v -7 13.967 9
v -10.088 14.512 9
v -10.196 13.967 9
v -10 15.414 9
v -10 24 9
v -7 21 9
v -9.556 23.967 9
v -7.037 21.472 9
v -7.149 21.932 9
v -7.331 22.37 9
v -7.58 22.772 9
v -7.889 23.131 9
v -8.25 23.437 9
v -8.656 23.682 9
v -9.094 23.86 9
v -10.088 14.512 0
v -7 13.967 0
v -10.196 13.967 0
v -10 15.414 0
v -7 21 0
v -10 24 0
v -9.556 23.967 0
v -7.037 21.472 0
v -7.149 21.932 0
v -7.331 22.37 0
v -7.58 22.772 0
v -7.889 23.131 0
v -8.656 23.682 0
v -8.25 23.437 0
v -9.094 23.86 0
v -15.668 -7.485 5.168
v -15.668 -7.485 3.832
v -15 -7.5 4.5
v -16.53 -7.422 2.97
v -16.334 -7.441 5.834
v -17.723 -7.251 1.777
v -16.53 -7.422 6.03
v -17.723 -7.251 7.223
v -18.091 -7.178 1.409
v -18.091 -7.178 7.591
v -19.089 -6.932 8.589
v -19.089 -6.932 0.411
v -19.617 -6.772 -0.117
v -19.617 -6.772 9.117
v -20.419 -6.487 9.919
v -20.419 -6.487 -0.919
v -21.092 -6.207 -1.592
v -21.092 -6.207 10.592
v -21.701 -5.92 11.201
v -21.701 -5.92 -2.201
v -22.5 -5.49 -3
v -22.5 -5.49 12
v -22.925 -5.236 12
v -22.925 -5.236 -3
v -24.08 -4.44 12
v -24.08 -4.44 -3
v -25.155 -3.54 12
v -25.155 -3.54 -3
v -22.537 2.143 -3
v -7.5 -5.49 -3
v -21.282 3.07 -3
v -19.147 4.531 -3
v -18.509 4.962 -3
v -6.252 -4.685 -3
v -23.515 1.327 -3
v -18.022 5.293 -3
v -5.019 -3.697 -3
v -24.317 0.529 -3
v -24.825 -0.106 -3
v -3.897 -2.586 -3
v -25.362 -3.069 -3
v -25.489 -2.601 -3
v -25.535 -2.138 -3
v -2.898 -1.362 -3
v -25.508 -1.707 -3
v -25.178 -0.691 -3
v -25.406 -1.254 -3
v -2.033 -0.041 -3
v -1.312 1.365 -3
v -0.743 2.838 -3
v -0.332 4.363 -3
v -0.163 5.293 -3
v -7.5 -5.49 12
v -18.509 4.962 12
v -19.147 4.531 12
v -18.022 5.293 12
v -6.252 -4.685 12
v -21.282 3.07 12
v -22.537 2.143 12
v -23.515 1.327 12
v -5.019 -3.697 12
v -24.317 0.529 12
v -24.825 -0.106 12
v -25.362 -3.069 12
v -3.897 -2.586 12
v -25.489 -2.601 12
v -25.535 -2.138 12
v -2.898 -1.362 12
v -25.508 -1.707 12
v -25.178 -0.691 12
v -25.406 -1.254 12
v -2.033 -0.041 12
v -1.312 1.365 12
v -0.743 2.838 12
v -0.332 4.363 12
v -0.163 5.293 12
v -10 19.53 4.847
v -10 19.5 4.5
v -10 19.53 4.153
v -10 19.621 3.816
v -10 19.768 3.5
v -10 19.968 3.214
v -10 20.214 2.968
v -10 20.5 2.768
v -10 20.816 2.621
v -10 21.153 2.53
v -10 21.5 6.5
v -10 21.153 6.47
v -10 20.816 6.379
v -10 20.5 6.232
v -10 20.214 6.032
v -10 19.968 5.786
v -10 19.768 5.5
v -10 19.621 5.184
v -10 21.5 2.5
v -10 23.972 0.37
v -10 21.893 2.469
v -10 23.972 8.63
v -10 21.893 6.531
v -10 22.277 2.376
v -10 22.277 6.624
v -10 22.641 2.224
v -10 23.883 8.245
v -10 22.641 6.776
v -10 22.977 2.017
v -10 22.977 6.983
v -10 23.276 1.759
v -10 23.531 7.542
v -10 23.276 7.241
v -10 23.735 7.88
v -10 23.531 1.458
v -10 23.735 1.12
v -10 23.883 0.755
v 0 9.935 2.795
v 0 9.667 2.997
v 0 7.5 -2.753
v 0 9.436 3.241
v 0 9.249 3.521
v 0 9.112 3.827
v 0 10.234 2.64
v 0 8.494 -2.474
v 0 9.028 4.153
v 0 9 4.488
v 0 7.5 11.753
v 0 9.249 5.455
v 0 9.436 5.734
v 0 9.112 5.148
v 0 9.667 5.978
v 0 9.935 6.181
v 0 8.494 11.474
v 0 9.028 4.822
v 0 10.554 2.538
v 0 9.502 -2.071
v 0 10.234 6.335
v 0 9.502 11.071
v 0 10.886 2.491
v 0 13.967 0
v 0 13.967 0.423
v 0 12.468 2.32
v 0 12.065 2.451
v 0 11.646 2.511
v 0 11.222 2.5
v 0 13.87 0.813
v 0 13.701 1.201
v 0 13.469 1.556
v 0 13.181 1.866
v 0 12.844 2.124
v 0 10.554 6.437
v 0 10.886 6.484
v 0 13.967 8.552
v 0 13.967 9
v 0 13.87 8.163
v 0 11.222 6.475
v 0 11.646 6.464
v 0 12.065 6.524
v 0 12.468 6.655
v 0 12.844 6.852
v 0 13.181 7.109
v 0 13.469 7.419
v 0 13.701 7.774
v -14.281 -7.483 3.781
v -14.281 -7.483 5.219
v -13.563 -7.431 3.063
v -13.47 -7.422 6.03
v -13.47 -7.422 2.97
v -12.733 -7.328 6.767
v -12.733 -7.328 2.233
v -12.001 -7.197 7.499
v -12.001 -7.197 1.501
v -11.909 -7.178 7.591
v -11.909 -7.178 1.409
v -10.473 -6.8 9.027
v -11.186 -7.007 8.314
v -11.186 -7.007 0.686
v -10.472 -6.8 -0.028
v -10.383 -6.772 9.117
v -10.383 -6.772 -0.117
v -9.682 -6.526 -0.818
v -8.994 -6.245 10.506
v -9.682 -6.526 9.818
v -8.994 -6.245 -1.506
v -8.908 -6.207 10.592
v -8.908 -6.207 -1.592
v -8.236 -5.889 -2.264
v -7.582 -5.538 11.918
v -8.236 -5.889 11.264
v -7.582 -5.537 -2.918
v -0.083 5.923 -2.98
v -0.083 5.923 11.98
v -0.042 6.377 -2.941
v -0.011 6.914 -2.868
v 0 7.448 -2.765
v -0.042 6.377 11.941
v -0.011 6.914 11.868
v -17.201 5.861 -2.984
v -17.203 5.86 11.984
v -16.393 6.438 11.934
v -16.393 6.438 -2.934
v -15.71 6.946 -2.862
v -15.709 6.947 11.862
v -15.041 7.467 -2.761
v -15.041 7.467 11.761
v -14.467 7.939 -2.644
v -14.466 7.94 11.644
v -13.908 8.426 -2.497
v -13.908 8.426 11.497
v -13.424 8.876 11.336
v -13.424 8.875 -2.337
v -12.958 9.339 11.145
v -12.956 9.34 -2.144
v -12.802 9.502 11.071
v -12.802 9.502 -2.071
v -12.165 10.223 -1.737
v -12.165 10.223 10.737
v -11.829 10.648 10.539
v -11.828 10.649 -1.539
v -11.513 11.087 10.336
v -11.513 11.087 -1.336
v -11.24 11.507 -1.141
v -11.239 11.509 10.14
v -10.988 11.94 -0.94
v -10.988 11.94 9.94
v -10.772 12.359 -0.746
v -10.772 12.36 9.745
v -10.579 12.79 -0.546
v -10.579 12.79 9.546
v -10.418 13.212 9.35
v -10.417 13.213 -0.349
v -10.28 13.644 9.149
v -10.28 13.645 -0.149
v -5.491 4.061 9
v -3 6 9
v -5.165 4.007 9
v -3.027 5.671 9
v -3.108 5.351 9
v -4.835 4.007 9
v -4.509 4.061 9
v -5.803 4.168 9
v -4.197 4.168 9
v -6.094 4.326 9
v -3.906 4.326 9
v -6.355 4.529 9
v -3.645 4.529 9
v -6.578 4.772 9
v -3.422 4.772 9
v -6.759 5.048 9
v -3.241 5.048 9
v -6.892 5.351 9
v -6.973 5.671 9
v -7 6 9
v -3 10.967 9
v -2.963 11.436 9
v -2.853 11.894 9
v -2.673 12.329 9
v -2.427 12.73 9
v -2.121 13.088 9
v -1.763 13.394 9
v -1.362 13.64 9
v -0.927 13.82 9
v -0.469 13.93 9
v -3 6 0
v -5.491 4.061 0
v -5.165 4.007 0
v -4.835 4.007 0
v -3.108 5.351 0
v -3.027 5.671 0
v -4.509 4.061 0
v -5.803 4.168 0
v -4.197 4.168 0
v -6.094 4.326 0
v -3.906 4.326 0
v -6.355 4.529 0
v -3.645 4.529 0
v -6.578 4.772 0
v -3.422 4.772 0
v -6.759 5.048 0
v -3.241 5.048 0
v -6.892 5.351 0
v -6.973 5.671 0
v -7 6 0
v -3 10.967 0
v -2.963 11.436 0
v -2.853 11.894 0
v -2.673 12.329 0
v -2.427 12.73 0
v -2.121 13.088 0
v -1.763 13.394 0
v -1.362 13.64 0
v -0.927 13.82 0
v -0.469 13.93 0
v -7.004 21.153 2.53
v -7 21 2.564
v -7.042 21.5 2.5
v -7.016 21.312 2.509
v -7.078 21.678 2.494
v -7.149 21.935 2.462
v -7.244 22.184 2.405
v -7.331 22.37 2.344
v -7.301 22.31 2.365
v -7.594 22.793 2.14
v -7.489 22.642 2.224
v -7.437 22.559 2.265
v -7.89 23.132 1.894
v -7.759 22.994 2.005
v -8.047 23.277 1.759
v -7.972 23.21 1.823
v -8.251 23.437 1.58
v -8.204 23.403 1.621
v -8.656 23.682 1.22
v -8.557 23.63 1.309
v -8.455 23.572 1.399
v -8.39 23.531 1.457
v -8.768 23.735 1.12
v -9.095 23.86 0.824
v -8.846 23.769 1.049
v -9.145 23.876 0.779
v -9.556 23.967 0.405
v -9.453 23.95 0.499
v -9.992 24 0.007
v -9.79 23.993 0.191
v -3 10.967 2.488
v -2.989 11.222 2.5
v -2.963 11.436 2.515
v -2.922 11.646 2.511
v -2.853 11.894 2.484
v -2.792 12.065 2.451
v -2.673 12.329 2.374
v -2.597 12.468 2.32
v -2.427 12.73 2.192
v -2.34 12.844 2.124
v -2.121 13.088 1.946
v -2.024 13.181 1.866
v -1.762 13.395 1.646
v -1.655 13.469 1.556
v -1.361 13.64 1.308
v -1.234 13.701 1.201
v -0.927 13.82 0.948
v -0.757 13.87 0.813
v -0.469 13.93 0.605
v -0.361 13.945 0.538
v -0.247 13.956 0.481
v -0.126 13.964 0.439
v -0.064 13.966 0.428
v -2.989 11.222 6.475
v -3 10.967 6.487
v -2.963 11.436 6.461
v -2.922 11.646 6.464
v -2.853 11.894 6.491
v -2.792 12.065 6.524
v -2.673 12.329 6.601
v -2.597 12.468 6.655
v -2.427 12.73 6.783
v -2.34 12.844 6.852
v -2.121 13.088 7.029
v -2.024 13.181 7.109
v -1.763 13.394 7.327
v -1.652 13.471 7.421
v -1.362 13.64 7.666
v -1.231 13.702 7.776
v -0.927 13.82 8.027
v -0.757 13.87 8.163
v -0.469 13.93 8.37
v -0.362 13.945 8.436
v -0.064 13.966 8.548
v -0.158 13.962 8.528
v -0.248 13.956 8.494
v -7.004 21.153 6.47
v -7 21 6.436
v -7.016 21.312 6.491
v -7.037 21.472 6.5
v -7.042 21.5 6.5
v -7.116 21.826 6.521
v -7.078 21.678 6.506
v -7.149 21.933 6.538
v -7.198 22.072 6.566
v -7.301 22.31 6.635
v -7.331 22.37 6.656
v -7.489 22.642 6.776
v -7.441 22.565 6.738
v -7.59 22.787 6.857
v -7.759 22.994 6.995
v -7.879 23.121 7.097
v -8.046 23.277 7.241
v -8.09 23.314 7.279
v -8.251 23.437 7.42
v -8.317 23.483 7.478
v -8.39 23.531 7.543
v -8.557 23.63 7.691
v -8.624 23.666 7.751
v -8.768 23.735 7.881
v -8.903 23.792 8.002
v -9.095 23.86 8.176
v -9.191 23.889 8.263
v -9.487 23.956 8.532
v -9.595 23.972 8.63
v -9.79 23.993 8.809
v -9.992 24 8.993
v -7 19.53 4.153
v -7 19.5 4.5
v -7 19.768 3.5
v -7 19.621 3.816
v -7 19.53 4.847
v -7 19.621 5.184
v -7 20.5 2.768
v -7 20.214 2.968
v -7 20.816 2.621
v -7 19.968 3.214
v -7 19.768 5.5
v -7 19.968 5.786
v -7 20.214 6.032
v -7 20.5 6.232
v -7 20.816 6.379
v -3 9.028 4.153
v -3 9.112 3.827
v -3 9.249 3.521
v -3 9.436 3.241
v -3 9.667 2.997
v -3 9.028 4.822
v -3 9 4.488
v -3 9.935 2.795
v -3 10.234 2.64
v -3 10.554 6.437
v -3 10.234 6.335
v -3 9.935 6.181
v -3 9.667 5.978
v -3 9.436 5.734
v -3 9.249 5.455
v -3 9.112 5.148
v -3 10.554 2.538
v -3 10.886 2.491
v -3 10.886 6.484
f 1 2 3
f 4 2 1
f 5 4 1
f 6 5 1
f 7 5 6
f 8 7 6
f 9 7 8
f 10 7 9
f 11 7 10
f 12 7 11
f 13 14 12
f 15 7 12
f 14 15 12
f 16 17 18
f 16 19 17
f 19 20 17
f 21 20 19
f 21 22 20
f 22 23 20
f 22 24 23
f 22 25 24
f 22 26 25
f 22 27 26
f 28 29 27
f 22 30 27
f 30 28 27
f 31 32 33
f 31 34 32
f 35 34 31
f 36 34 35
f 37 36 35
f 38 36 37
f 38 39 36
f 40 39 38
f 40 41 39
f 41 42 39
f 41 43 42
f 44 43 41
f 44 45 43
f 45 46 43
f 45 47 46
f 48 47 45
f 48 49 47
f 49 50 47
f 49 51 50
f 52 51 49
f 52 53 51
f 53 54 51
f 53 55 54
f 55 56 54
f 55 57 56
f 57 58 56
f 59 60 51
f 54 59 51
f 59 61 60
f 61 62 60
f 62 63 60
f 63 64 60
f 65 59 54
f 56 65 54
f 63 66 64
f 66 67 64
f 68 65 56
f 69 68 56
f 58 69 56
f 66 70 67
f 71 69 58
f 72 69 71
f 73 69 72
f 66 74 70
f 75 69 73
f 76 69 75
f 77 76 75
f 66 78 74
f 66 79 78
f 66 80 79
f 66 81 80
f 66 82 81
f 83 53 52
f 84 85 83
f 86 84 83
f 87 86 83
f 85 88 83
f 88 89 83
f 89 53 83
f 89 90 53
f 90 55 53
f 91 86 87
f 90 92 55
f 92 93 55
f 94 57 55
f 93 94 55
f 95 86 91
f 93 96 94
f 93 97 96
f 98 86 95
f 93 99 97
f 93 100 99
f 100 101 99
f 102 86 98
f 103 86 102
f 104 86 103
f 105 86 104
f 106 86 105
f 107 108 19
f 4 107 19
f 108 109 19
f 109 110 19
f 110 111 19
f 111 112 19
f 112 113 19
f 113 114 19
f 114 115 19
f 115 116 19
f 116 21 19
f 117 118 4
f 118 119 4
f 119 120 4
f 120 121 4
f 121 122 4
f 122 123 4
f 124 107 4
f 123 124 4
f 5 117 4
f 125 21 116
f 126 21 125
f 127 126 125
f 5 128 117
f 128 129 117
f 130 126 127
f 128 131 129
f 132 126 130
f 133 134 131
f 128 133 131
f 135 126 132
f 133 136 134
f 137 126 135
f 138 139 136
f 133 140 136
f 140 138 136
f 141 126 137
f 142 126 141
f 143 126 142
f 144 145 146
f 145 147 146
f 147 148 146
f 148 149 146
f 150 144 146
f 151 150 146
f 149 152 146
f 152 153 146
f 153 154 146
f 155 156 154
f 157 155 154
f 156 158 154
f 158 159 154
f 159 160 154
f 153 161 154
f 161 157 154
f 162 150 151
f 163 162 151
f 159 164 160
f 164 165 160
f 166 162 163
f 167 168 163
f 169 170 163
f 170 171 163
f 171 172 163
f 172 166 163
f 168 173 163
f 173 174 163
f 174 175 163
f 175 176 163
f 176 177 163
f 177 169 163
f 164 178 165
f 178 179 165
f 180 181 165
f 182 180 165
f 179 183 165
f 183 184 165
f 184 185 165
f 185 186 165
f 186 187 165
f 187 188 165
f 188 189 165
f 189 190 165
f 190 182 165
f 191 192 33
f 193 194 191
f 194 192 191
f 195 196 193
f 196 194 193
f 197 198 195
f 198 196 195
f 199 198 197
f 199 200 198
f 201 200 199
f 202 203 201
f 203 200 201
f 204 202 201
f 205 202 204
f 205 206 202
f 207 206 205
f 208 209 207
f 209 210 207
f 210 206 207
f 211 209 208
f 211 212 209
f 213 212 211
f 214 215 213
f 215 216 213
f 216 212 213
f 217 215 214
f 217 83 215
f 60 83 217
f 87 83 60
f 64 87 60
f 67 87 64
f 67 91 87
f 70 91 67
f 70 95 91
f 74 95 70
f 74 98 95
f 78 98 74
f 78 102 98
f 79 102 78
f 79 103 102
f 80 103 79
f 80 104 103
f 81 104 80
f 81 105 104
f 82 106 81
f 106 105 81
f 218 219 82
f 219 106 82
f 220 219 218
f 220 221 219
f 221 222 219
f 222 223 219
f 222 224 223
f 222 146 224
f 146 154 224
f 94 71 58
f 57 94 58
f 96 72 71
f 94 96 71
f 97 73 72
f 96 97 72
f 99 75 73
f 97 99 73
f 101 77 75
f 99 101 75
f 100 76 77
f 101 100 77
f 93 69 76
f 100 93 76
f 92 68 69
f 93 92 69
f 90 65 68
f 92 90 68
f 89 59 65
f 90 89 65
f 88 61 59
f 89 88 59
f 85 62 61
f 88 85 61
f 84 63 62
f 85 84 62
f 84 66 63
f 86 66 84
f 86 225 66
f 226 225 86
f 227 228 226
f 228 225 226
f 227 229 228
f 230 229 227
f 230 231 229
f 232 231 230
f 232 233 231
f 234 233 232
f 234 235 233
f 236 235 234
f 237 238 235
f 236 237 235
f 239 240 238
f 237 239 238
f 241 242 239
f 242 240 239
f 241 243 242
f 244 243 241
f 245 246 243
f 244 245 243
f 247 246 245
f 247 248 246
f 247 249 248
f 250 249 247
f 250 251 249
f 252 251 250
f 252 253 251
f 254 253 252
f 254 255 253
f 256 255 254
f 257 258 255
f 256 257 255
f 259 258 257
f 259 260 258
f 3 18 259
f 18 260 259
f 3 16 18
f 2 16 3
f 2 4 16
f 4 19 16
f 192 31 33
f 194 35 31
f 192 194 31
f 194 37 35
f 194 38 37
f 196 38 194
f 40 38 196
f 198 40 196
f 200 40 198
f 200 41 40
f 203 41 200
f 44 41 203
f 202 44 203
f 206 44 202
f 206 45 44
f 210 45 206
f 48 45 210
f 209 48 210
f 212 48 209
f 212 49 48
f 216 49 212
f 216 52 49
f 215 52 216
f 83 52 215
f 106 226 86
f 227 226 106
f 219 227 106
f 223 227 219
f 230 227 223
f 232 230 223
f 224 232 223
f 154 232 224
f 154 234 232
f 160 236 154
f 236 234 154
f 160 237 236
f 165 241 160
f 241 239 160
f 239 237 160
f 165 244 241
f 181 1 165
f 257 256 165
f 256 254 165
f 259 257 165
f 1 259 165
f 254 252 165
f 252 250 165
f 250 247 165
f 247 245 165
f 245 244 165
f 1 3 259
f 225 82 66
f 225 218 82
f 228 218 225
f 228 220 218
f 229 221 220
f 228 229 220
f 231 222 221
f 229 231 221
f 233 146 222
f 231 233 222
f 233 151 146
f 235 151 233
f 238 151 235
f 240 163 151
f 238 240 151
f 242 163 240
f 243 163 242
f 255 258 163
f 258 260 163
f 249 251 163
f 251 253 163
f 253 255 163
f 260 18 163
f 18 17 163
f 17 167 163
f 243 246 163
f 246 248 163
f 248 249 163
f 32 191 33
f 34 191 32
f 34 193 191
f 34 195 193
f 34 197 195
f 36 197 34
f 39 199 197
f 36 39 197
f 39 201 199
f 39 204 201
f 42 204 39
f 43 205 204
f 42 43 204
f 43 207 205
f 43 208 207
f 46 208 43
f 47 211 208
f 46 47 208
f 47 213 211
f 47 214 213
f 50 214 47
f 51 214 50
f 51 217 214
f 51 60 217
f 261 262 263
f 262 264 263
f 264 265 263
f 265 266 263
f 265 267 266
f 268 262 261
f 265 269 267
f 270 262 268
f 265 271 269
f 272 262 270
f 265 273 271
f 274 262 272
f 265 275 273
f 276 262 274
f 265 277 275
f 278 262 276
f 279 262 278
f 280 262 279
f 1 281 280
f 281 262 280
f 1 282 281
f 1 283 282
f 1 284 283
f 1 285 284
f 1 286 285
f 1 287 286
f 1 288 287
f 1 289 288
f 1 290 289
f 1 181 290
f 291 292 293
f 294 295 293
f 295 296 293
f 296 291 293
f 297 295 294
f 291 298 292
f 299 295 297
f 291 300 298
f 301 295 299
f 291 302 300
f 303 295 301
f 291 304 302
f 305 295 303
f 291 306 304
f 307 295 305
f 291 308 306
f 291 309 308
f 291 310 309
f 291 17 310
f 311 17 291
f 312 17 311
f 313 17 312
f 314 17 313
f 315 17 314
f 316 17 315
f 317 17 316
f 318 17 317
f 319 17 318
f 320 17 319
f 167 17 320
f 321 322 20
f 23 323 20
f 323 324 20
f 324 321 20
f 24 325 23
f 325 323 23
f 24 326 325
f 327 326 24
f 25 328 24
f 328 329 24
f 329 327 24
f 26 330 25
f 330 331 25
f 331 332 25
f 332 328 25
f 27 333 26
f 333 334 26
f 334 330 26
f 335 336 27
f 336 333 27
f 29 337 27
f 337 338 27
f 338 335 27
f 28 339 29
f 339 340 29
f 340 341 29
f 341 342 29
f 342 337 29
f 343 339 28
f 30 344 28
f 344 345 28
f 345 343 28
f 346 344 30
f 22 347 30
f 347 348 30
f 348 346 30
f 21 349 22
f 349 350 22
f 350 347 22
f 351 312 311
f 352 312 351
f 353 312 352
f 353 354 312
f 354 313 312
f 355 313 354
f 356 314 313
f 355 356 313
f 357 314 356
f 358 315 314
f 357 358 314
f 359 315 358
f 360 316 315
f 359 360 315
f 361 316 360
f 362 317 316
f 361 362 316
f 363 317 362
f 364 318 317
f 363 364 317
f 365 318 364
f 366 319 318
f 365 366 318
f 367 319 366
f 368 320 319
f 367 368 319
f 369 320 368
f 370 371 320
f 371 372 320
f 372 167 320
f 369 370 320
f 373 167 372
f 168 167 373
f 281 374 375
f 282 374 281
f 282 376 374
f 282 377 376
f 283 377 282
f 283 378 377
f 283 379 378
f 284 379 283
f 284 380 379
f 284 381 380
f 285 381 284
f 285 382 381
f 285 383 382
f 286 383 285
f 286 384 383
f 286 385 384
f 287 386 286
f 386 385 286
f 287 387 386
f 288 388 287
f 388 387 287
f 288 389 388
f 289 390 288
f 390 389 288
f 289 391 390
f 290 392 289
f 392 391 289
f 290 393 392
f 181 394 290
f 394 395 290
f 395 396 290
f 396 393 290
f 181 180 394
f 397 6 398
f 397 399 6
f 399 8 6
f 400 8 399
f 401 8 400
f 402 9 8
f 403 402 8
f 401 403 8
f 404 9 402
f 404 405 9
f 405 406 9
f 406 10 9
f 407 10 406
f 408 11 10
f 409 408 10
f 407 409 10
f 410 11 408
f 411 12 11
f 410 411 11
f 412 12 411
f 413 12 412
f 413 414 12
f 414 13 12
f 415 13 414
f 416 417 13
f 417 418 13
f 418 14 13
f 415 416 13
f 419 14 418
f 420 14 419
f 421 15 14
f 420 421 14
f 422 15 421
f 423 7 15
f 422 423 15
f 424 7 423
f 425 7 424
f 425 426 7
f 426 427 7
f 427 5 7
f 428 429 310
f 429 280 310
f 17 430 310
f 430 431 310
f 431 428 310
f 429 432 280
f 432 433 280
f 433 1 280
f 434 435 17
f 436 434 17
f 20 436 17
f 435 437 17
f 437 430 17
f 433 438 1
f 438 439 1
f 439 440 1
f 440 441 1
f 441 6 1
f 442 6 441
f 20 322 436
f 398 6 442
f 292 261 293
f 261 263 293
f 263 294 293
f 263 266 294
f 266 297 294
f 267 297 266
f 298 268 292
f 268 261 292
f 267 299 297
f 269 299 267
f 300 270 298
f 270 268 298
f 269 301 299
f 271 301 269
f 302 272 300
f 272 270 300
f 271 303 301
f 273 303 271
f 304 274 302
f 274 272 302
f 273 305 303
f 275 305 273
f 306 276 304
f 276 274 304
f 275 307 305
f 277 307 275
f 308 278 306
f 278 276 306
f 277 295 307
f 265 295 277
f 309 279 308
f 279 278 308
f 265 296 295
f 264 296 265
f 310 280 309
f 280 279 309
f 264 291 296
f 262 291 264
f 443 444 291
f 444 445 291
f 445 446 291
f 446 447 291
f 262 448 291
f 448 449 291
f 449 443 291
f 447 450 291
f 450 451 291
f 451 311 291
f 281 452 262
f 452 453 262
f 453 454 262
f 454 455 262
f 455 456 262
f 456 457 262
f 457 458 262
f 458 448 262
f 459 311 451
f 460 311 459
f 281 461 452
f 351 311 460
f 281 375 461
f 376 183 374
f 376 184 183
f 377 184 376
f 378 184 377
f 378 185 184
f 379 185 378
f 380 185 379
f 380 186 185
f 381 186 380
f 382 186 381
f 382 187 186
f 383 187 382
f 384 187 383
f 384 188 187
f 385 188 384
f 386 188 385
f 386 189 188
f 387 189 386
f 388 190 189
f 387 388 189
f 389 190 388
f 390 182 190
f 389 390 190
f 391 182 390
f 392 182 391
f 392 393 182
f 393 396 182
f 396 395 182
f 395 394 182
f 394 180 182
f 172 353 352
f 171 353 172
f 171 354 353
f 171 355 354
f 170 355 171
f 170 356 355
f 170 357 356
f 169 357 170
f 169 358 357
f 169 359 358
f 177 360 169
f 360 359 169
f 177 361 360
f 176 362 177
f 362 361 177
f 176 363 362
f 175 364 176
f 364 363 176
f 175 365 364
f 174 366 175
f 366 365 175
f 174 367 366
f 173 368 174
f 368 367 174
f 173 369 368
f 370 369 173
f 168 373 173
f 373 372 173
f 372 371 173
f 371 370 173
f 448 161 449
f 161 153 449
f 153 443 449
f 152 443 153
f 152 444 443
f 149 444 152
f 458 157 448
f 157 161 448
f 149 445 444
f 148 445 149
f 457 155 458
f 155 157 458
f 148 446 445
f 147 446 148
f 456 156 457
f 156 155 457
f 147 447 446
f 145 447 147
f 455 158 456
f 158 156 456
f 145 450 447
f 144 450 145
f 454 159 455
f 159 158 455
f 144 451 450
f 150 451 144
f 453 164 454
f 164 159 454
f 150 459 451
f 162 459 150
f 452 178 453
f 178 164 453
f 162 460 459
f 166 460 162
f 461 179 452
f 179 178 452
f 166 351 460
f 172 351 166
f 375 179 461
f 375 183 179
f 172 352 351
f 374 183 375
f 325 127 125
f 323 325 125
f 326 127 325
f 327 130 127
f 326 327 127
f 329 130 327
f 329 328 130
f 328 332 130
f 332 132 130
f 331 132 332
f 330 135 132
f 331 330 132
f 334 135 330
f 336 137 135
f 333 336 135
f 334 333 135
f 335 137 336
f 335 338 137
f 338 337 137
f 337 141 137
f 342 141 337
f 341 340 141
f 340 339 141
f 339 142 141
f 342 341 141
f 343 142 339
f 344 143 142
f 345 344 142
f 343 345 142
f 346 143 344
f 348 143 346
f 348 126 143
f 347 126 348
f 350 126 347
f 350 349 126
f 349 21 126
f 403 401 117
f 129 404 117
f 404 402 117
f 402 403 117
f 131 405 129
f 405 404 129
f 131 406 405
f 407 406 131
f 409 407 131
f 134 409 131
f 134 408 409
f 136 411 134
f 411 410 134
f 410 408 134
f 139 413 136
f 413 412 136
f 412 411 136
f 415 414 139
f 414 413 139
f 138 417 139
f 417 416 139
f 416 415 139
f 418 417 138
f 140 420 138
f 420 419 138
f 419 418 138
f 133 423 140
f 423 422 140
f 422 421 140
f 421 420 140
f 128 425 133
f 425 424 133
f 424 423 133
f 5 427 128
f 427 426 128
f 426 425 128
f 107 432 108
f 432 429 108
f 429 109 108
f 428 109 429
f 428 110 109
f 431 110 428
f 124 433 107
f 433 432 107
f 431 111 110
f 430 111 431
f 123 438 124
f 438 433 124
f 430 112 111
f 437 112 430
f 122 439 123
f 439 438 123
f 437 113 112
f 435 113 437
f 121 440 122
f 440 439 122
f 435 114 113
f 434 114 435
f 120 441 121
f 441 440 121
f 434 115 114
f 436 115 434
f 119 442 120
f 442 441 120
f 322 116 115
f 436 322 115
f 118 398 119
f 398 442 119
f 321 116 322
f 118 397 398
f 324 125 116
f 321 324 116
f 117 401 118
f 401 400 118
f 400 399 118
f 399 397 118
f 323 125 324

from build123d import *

# Parameters (mm, degrees)
SKETCH1_R                = 2
SKETCH1_R_2              = 2.6
BOSS_EXTRUDE1_DEPTH      = 9
FILLET1_R                = 4
SKETCH3_W                = 1
SKETCH3_H                = 25
CUT_EXTRUDE2_DEPTH       = 131.694299799
CUT_EXTRUDE3_DEPTH       = 132.837020597
BOSS_EXTRUDE2_DEPTH      = 3
BOSS_EXTRUDE4_DEPTH      = 5
CUT_EXTRUDE4_DEPTH       = 2
FILLET2_R                = 20
FILLET3_R                = 4
BOSS_EXTRUDE5_DEPTH      = 12
BOSS_EXTRUDE5_DEPTH_BACK = 3
CUT_EXTRUDE5_DEPTH       = 134.026557597
CUT_EXTRUDE5_DEPTH_BACK  = 134.026557597


with BuildPart() as part:
    # Sketch1 → Boss-Extrude1 (new body)
    with BuildSketch(Plane.XY):
        Polygon((0, 0), (-10, 0), (-10, 30), (-20, 90), (-20, 130), (-10, 130), (-10, 90), (0, 30), align=None)
        with Locations((-15, 100)):
            Circle(SKETCH1_R, mode=Mode.SUBTRACT)
        with Locations((-15, 125)):
            Circle(SKETCH1_R_2, mode=Mode.SUBTRACT)
    extrude(amount=BOSS_EXTRUDE1_DEPTH)

    # Fillet1
    fillet1_edges = [part.edges().sort_by_distance(p)[0] for p in [
        (0, 0, 4.5),
        (-10, 0, 4.5),
    ]]
    fillet(fillet1_edges, radius=FILLET1_R)

    # Sketch3 → Cut-Extrude2 (cut, through all)
    with BuildSketch(Plane.ZY.offset(10)):
        with Locations((0.5, 117.5)):
            Rectangle(SKETCH3_W, SKETCH3_H)
    extrude(amount=CUT_EXTRUDE2_DEPTH, mode=Mode.SUBTRACT)

    # Sketch5 → Cut-Extrude3 (cut, through all)
    with BuildSketch(Plane.XY.offset(9)):
        with BuildLine():
            Line((-10, 4), (-10, 24))
            ThreePointArc((-10, 24), (-7.878679656, 23.121320344), (-7, 21))
            Line((-7, 21), (-7, 6))
            ThreePointArc((-7, 6), (-5, 4), (-3, 6))
            Line((-3, 6), (-3, 10.96659189))
            ThreePointArc((-3, 10.96659189), (-2.121320344, 13.087912234), (0, 13.96659189))
            Line((0, 13.96659189), (0, 4))
            ThreePointArc((0, 4), (-1.171572875, 1.171572875), (-4, 0))
            Line((-4, 0), (-6, 0))
            ThreePointArc((-6, 0), (-8.828427125, 1.171572875), (-10, 4))
        make_face()
    extrude(amount=-CUT_EXTRUDE3_DEPTH, mode=Mode.SUBTRACT)

    # Boss-Extrude2: read off the stored shape, not the designer's step
    # Boss-Extrude2 outline → Boss-Extrude2 (add)
    with BuildSketch(Plane.ZY):
        with BuildLine():
            Line((9, 13.96659189), (9, 30))
            Line((9, 30), (0, 30))
            Line((0, 30), (0, 13.96659189))
            Line((0, 13.96659189), (0.423395215, 13.96659189))
            ThreePointArc((0.423395215, 13.96659189), (2.009052541, 13.008624555), (2.499994655, 11.222291324))
            ThreePointArc((2.499994655, 11.222291324), (4.487608253, 9.000047793), (6.47522185, 11.222291324))
            ThreePointArc((6.47522185, 11.222291324), (6.966163965, 13.008624555), (8.551821291, 13.96659189))
            Line((8.551821291, 13.96659189), (9, 13.96659189))
        make_face()
    extrude(amount=BOSS_EXTRUDE2_DEPTH)

    # Sketch8 → Boss-Extrude4 (add)
    with BuildSketch(Plane.ZY.offset(10)):
        with BuildLine():
            Line((2.5, 21.5), (6.5, 21.5))
            ThreePointArc((6.5, 21.5), (4.5, 19.5), (2.5, 21.5))
        make_face()
        with BuildLine():
            ThreePointArc((0, 24), (1.767766953, 23.267766953), (2.5, 21.5))
            Line((2.5, 21.5), (6.5, 21.5))
            ThreePointArc((6.5, 21.5), (7.232233047, 23.267766953), (9, 24))
            Line((9, 24), (0, 24))
        make_face()
    extrude(amount=-BOSS_EXTRUDE4_DEPTH)

    # Sketch9 → Cut-Extrude4 (cut)
    with BuildSketch(Plane(origin=(4.931969619, 0.408182285, 0), x_dir=(0, 0, -1), z_dir=(0.9863939238321437, 0.16439898730535749, 0))):
        with BuildLine():
            Line((-7, 37), (-7, 85.827625303))
            ThreePointArc((-7, 85.827625303), (-4.5, 88.327625303), (-2, 85.827625303))
            Line((-2, 85.827625303), (-2, 37))
            ThreePointArc((-2, 37), (-4.5, 34.5), (-7, 37))
        make_face()
    cut_extrude4 = extrude(amount=-CUT_EXTRUDE4_DEPTH, mode=Mode.SUBTRACT)

    # Mirror1: Cut-Extrude4 across plane
    add(cut_extrude4.mirror(Plane(origin=(0, 0, 0), x_dir=(0, 0, 1), z_dir=(0.9863939238321437, 0.16439898730535743, 0))), mode=Mode.SUBTRACT)

    # Fillet2
    fillet2_edges = [part.edges().sort_by_distance(p)[0] for p in [
        (-10, 30, 4.5),
        (-20, 90, 4.5),
        (-10, 90, 4.5),
        (0, 30, 4.5),
    ]]
    fillet(fillet2_edges, radius=FILLET2_R)

    # Fillet3
    fillet3_edges = [part.edges().sort_by_distance(p)[0] for p in [
        (-20, 130, 5),
        (-10, 130, 5),
    ]]
    fillet(fillet3_edges, radius=FILLET3_R)


with BuildPart() as body_2:
    # Sketch1<5> → Boss-Extrude5 (new, two sides: drawn at the far end of the back side and taken through both)
    with BuildSketch(Plane.XY.offset(-BOSS_EXTRUDE5_DEPTH_BACK)):
        with BuildLine():
            ThreePointArc((-25.154949118, -3.539792045), (-8.971908958, -6.235432952), (0, 7.5))
            Line((0, 7.5), (0, 27.350317066))
            Line((0, 27.350317066), (-10, 27.350317066))
            Line((-10, 27.350317066), (-10, 15.414300315))
            add(Edge.make_bspline(
                [(-10, 15.414300315), (-10.3332076, 5.995566791), (-28.355100317, 2.568910038), (-25.154949118, -3.539792045)],
                knots=[0, 0, 0, 0, 0.764316477, 0.764316477, 0.764316477, 0.764316477], degree=3))
        make_face()
    extrude(amount=BOSS_EXTRUDE5_DEPTH + BOSS_EXTRUDE5_DEPTH_BACK)

    # Sketch10 → Cut-Extrude5 (cut, two sides: drawn at the far end of the back side and taken through both)
    with BuildSketch(Plane(origin=(0, 0, 0), x_dir=(0, 0, -1), z_dir=(1, 0, 0)).offset(-CUT_EXTRUDE5_DEPTH_BACK)):
        with BuildLine():
            Line((-9, 13.96659189), (-9, 28.344749394))
            Line((-9, 28.344749394), (-14.199341922, 29.234870168))
            Line((-14.199341922, 29.234870168), (-18.34923463, 5.372987094))
            Line((-18.34923463, 5.372987094), (-14.775715909, -10.880759347))
            Line((-14.775715909, -10.880759347), (12.313861494, -10.073835765))
            Line((12.313861494, -10.073835765), (10.584739532, 28.344749394))
            Line((10.584739532, 28.344749394), (0, 28.344749394))
            Line((0, 28.344749394), (0, 13.96659189))
            Line((0, 13.96659189), (2.071346392, 9.501741297))
            ThreePointArc((2.071346392, 9.501741297), (2.765077161, 7.448160424), (3, 5.29333606))
            Line((3, 5.29333606), (3, -5.490381057))
            ThreePointArc((3, -5.490381057), (-4.5, -7.5), (-12, -5.490381057))
            Line((-12, -5.490381057), (-12, 5.29333606))
            ThreePointArc((-12, 5.29333606), (-11.765077161, 7.448160424), (-11.071346392, 9.501741297))
            Line((-11.071346392, 9.501741297), (-9, 13.96659189))
        make_face()
    extrude(amount=CUT_EXTRUDE5_DEPTH + CUT_EXTRUDE5_DEPTH_BACK, mode=Mode.SUBTRACT)

    # Combine1: cut part
    add(part.part, mode=Mode.SUBTRACT)


solid = body_2.part
